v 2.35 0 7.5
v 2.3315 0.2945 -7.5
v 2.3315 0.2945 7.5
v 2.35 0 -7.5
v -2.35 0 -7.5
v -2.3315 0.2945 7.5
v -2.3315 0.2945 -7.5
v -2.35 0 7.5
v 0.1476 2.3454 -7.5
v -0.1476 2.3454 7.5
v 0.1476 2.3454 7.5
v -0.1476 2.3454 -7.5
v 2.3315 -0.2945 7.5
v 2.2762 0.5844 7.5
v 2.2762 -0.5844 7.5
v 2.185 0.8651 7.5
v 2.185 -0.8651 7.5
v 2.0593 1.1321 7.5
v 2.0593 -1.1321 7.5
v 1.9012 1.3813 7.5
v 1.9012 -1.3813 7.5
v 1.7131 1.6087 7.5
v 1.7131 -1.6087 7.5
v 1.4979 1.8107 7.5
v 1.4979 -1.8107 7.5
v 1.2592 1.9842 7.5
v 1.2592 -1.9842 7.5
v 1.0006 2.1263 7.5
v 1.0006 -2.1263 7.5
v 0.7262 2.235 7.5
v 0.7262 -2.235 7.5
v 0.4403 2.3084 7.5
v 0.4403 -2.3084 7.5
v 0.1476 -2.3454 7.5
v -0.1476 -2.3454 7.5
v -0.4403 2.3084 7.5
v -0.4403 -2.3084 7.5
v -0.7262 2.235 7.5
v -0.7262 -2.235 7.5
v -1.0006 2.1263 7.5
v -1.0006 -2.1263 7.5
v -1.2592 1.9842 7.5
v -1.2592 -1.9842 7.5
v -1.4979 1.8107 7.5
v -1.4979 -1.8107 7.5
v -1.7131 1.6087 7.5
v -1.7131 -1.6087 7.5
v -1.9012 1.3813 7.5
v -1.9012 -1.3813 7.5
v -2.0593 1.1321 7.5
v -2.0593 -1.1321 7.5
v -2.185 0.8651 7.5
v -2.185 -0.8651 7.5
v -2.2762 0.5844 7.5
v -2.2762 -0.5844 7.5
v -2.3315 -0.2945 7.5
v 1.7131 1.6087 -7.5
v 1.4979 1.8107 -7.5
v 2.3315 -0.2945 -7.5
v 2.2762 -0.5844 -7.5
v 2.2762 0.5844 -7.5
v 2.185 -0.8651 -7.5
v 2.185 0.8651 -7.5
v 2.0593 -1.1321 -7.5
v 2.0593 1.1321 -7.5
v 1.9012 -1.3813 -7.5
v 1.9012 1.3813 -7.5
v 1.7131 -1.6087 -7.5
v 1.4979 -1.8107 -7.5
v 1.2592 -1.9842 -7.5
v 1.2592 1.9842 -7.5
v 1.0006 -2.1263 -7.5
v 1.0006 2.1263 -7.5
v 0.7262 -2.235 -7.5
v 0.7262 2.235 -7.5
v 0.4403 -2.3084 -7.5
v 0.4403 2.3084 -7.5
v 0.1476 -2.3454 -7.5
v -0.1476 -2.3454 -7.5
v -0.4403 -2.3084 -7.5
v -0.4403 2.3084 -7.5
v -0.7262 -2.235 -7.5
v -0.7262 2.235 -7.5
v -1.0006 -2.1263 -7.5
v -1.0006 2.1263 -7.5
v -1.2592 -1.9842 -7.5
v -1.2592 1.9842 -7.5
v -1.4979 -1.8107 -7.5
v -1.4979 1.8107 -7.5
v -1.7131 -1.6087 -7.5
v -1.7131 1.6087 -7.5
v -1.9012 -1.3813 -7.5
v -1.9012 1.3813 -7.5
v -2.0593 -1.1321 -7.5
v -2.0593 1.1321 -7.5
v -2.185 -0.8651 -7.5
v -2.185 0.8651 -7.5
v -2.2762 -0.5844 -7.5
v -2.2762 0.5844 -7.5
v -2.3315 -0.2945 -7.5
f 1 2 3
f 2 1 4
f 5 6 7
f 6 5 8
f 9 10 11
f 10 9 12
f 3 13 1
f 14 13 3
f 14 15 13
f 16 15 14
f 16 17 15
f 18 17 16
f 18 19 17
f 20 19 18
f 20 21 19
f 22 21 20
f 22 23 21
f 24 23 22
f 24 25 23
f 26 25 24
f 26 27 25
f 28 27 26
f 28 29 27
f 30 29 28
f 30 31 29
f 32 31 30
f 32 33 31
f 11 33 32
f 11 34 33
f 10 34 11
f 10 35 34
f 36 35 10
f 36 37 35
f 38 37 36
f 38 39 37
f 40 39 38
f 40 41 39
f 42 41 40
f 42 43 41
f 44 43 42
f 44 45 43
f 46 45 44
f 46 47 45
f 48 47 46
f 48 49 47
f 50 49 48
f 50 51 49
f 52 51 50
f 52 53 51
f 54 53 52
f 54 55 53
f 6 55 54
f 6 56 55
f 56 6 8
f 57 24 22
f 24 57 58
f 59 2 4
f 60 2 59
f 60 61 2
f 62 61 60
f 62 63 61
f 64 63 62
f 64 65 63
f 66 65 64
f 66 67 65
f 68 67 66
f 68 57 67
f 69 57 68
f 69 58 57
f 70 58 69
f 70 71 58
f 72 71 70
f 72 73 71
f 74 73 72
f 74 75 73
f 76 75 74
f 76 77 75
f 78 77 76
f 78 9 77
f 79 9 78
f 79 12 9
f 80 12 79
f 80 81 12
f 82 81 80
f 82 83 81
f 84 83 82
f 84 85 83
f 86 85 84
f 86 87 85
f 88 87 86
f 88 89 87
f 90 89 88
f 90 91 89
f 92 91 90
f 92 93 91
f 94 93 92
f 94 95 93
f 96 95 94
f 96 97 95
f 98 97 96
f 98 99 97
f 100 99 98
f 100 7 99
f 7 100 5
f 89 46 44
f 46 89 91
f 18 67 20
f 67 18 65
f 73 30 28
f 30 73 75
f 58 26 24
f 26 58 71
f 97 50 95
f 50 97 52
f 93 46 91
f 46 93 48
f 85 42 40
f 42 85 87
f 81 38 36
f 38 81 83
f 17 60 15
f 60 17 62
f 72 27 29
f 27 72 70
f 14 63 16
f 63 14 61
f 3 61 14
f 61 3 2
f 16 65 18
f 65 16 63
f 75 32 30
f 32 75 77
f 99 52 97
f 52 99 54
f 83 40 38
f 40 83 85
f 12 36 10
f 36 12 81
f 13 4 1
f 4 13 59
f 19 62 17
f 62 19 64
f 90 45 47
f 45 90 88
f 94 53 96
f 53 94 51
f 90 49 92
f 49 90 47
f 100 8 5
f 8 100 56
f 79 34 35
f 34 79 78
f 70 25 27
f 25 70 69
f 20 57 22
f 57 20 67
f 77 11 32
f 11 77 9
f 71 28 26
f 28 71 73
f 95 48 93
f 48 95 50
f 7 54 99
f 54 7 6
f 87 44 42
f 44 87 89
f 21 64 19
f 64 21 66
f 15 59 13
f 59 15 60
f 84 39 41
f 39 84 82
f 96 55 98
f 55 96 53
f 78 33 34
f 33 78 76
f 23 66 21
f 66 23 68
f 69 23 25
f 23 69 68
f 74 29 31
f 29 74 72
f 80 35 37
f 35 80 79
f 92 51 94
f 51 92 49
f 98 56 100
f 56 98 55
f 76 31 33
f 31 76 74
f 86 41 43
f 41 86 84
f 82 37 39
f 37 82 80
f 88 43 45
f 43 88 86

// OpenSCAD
$fn = 50;


difference() {
	union() {
		translate(v = [0, 0, -7.5000000000]) {
			cylinder(h = 15, r = 2.3500000000);
		}
	}
	union() {
		translate(v = [0, 0, -100.0000000000]) {
			cylinder(h = 200, r = 0);
		}
	}
}
